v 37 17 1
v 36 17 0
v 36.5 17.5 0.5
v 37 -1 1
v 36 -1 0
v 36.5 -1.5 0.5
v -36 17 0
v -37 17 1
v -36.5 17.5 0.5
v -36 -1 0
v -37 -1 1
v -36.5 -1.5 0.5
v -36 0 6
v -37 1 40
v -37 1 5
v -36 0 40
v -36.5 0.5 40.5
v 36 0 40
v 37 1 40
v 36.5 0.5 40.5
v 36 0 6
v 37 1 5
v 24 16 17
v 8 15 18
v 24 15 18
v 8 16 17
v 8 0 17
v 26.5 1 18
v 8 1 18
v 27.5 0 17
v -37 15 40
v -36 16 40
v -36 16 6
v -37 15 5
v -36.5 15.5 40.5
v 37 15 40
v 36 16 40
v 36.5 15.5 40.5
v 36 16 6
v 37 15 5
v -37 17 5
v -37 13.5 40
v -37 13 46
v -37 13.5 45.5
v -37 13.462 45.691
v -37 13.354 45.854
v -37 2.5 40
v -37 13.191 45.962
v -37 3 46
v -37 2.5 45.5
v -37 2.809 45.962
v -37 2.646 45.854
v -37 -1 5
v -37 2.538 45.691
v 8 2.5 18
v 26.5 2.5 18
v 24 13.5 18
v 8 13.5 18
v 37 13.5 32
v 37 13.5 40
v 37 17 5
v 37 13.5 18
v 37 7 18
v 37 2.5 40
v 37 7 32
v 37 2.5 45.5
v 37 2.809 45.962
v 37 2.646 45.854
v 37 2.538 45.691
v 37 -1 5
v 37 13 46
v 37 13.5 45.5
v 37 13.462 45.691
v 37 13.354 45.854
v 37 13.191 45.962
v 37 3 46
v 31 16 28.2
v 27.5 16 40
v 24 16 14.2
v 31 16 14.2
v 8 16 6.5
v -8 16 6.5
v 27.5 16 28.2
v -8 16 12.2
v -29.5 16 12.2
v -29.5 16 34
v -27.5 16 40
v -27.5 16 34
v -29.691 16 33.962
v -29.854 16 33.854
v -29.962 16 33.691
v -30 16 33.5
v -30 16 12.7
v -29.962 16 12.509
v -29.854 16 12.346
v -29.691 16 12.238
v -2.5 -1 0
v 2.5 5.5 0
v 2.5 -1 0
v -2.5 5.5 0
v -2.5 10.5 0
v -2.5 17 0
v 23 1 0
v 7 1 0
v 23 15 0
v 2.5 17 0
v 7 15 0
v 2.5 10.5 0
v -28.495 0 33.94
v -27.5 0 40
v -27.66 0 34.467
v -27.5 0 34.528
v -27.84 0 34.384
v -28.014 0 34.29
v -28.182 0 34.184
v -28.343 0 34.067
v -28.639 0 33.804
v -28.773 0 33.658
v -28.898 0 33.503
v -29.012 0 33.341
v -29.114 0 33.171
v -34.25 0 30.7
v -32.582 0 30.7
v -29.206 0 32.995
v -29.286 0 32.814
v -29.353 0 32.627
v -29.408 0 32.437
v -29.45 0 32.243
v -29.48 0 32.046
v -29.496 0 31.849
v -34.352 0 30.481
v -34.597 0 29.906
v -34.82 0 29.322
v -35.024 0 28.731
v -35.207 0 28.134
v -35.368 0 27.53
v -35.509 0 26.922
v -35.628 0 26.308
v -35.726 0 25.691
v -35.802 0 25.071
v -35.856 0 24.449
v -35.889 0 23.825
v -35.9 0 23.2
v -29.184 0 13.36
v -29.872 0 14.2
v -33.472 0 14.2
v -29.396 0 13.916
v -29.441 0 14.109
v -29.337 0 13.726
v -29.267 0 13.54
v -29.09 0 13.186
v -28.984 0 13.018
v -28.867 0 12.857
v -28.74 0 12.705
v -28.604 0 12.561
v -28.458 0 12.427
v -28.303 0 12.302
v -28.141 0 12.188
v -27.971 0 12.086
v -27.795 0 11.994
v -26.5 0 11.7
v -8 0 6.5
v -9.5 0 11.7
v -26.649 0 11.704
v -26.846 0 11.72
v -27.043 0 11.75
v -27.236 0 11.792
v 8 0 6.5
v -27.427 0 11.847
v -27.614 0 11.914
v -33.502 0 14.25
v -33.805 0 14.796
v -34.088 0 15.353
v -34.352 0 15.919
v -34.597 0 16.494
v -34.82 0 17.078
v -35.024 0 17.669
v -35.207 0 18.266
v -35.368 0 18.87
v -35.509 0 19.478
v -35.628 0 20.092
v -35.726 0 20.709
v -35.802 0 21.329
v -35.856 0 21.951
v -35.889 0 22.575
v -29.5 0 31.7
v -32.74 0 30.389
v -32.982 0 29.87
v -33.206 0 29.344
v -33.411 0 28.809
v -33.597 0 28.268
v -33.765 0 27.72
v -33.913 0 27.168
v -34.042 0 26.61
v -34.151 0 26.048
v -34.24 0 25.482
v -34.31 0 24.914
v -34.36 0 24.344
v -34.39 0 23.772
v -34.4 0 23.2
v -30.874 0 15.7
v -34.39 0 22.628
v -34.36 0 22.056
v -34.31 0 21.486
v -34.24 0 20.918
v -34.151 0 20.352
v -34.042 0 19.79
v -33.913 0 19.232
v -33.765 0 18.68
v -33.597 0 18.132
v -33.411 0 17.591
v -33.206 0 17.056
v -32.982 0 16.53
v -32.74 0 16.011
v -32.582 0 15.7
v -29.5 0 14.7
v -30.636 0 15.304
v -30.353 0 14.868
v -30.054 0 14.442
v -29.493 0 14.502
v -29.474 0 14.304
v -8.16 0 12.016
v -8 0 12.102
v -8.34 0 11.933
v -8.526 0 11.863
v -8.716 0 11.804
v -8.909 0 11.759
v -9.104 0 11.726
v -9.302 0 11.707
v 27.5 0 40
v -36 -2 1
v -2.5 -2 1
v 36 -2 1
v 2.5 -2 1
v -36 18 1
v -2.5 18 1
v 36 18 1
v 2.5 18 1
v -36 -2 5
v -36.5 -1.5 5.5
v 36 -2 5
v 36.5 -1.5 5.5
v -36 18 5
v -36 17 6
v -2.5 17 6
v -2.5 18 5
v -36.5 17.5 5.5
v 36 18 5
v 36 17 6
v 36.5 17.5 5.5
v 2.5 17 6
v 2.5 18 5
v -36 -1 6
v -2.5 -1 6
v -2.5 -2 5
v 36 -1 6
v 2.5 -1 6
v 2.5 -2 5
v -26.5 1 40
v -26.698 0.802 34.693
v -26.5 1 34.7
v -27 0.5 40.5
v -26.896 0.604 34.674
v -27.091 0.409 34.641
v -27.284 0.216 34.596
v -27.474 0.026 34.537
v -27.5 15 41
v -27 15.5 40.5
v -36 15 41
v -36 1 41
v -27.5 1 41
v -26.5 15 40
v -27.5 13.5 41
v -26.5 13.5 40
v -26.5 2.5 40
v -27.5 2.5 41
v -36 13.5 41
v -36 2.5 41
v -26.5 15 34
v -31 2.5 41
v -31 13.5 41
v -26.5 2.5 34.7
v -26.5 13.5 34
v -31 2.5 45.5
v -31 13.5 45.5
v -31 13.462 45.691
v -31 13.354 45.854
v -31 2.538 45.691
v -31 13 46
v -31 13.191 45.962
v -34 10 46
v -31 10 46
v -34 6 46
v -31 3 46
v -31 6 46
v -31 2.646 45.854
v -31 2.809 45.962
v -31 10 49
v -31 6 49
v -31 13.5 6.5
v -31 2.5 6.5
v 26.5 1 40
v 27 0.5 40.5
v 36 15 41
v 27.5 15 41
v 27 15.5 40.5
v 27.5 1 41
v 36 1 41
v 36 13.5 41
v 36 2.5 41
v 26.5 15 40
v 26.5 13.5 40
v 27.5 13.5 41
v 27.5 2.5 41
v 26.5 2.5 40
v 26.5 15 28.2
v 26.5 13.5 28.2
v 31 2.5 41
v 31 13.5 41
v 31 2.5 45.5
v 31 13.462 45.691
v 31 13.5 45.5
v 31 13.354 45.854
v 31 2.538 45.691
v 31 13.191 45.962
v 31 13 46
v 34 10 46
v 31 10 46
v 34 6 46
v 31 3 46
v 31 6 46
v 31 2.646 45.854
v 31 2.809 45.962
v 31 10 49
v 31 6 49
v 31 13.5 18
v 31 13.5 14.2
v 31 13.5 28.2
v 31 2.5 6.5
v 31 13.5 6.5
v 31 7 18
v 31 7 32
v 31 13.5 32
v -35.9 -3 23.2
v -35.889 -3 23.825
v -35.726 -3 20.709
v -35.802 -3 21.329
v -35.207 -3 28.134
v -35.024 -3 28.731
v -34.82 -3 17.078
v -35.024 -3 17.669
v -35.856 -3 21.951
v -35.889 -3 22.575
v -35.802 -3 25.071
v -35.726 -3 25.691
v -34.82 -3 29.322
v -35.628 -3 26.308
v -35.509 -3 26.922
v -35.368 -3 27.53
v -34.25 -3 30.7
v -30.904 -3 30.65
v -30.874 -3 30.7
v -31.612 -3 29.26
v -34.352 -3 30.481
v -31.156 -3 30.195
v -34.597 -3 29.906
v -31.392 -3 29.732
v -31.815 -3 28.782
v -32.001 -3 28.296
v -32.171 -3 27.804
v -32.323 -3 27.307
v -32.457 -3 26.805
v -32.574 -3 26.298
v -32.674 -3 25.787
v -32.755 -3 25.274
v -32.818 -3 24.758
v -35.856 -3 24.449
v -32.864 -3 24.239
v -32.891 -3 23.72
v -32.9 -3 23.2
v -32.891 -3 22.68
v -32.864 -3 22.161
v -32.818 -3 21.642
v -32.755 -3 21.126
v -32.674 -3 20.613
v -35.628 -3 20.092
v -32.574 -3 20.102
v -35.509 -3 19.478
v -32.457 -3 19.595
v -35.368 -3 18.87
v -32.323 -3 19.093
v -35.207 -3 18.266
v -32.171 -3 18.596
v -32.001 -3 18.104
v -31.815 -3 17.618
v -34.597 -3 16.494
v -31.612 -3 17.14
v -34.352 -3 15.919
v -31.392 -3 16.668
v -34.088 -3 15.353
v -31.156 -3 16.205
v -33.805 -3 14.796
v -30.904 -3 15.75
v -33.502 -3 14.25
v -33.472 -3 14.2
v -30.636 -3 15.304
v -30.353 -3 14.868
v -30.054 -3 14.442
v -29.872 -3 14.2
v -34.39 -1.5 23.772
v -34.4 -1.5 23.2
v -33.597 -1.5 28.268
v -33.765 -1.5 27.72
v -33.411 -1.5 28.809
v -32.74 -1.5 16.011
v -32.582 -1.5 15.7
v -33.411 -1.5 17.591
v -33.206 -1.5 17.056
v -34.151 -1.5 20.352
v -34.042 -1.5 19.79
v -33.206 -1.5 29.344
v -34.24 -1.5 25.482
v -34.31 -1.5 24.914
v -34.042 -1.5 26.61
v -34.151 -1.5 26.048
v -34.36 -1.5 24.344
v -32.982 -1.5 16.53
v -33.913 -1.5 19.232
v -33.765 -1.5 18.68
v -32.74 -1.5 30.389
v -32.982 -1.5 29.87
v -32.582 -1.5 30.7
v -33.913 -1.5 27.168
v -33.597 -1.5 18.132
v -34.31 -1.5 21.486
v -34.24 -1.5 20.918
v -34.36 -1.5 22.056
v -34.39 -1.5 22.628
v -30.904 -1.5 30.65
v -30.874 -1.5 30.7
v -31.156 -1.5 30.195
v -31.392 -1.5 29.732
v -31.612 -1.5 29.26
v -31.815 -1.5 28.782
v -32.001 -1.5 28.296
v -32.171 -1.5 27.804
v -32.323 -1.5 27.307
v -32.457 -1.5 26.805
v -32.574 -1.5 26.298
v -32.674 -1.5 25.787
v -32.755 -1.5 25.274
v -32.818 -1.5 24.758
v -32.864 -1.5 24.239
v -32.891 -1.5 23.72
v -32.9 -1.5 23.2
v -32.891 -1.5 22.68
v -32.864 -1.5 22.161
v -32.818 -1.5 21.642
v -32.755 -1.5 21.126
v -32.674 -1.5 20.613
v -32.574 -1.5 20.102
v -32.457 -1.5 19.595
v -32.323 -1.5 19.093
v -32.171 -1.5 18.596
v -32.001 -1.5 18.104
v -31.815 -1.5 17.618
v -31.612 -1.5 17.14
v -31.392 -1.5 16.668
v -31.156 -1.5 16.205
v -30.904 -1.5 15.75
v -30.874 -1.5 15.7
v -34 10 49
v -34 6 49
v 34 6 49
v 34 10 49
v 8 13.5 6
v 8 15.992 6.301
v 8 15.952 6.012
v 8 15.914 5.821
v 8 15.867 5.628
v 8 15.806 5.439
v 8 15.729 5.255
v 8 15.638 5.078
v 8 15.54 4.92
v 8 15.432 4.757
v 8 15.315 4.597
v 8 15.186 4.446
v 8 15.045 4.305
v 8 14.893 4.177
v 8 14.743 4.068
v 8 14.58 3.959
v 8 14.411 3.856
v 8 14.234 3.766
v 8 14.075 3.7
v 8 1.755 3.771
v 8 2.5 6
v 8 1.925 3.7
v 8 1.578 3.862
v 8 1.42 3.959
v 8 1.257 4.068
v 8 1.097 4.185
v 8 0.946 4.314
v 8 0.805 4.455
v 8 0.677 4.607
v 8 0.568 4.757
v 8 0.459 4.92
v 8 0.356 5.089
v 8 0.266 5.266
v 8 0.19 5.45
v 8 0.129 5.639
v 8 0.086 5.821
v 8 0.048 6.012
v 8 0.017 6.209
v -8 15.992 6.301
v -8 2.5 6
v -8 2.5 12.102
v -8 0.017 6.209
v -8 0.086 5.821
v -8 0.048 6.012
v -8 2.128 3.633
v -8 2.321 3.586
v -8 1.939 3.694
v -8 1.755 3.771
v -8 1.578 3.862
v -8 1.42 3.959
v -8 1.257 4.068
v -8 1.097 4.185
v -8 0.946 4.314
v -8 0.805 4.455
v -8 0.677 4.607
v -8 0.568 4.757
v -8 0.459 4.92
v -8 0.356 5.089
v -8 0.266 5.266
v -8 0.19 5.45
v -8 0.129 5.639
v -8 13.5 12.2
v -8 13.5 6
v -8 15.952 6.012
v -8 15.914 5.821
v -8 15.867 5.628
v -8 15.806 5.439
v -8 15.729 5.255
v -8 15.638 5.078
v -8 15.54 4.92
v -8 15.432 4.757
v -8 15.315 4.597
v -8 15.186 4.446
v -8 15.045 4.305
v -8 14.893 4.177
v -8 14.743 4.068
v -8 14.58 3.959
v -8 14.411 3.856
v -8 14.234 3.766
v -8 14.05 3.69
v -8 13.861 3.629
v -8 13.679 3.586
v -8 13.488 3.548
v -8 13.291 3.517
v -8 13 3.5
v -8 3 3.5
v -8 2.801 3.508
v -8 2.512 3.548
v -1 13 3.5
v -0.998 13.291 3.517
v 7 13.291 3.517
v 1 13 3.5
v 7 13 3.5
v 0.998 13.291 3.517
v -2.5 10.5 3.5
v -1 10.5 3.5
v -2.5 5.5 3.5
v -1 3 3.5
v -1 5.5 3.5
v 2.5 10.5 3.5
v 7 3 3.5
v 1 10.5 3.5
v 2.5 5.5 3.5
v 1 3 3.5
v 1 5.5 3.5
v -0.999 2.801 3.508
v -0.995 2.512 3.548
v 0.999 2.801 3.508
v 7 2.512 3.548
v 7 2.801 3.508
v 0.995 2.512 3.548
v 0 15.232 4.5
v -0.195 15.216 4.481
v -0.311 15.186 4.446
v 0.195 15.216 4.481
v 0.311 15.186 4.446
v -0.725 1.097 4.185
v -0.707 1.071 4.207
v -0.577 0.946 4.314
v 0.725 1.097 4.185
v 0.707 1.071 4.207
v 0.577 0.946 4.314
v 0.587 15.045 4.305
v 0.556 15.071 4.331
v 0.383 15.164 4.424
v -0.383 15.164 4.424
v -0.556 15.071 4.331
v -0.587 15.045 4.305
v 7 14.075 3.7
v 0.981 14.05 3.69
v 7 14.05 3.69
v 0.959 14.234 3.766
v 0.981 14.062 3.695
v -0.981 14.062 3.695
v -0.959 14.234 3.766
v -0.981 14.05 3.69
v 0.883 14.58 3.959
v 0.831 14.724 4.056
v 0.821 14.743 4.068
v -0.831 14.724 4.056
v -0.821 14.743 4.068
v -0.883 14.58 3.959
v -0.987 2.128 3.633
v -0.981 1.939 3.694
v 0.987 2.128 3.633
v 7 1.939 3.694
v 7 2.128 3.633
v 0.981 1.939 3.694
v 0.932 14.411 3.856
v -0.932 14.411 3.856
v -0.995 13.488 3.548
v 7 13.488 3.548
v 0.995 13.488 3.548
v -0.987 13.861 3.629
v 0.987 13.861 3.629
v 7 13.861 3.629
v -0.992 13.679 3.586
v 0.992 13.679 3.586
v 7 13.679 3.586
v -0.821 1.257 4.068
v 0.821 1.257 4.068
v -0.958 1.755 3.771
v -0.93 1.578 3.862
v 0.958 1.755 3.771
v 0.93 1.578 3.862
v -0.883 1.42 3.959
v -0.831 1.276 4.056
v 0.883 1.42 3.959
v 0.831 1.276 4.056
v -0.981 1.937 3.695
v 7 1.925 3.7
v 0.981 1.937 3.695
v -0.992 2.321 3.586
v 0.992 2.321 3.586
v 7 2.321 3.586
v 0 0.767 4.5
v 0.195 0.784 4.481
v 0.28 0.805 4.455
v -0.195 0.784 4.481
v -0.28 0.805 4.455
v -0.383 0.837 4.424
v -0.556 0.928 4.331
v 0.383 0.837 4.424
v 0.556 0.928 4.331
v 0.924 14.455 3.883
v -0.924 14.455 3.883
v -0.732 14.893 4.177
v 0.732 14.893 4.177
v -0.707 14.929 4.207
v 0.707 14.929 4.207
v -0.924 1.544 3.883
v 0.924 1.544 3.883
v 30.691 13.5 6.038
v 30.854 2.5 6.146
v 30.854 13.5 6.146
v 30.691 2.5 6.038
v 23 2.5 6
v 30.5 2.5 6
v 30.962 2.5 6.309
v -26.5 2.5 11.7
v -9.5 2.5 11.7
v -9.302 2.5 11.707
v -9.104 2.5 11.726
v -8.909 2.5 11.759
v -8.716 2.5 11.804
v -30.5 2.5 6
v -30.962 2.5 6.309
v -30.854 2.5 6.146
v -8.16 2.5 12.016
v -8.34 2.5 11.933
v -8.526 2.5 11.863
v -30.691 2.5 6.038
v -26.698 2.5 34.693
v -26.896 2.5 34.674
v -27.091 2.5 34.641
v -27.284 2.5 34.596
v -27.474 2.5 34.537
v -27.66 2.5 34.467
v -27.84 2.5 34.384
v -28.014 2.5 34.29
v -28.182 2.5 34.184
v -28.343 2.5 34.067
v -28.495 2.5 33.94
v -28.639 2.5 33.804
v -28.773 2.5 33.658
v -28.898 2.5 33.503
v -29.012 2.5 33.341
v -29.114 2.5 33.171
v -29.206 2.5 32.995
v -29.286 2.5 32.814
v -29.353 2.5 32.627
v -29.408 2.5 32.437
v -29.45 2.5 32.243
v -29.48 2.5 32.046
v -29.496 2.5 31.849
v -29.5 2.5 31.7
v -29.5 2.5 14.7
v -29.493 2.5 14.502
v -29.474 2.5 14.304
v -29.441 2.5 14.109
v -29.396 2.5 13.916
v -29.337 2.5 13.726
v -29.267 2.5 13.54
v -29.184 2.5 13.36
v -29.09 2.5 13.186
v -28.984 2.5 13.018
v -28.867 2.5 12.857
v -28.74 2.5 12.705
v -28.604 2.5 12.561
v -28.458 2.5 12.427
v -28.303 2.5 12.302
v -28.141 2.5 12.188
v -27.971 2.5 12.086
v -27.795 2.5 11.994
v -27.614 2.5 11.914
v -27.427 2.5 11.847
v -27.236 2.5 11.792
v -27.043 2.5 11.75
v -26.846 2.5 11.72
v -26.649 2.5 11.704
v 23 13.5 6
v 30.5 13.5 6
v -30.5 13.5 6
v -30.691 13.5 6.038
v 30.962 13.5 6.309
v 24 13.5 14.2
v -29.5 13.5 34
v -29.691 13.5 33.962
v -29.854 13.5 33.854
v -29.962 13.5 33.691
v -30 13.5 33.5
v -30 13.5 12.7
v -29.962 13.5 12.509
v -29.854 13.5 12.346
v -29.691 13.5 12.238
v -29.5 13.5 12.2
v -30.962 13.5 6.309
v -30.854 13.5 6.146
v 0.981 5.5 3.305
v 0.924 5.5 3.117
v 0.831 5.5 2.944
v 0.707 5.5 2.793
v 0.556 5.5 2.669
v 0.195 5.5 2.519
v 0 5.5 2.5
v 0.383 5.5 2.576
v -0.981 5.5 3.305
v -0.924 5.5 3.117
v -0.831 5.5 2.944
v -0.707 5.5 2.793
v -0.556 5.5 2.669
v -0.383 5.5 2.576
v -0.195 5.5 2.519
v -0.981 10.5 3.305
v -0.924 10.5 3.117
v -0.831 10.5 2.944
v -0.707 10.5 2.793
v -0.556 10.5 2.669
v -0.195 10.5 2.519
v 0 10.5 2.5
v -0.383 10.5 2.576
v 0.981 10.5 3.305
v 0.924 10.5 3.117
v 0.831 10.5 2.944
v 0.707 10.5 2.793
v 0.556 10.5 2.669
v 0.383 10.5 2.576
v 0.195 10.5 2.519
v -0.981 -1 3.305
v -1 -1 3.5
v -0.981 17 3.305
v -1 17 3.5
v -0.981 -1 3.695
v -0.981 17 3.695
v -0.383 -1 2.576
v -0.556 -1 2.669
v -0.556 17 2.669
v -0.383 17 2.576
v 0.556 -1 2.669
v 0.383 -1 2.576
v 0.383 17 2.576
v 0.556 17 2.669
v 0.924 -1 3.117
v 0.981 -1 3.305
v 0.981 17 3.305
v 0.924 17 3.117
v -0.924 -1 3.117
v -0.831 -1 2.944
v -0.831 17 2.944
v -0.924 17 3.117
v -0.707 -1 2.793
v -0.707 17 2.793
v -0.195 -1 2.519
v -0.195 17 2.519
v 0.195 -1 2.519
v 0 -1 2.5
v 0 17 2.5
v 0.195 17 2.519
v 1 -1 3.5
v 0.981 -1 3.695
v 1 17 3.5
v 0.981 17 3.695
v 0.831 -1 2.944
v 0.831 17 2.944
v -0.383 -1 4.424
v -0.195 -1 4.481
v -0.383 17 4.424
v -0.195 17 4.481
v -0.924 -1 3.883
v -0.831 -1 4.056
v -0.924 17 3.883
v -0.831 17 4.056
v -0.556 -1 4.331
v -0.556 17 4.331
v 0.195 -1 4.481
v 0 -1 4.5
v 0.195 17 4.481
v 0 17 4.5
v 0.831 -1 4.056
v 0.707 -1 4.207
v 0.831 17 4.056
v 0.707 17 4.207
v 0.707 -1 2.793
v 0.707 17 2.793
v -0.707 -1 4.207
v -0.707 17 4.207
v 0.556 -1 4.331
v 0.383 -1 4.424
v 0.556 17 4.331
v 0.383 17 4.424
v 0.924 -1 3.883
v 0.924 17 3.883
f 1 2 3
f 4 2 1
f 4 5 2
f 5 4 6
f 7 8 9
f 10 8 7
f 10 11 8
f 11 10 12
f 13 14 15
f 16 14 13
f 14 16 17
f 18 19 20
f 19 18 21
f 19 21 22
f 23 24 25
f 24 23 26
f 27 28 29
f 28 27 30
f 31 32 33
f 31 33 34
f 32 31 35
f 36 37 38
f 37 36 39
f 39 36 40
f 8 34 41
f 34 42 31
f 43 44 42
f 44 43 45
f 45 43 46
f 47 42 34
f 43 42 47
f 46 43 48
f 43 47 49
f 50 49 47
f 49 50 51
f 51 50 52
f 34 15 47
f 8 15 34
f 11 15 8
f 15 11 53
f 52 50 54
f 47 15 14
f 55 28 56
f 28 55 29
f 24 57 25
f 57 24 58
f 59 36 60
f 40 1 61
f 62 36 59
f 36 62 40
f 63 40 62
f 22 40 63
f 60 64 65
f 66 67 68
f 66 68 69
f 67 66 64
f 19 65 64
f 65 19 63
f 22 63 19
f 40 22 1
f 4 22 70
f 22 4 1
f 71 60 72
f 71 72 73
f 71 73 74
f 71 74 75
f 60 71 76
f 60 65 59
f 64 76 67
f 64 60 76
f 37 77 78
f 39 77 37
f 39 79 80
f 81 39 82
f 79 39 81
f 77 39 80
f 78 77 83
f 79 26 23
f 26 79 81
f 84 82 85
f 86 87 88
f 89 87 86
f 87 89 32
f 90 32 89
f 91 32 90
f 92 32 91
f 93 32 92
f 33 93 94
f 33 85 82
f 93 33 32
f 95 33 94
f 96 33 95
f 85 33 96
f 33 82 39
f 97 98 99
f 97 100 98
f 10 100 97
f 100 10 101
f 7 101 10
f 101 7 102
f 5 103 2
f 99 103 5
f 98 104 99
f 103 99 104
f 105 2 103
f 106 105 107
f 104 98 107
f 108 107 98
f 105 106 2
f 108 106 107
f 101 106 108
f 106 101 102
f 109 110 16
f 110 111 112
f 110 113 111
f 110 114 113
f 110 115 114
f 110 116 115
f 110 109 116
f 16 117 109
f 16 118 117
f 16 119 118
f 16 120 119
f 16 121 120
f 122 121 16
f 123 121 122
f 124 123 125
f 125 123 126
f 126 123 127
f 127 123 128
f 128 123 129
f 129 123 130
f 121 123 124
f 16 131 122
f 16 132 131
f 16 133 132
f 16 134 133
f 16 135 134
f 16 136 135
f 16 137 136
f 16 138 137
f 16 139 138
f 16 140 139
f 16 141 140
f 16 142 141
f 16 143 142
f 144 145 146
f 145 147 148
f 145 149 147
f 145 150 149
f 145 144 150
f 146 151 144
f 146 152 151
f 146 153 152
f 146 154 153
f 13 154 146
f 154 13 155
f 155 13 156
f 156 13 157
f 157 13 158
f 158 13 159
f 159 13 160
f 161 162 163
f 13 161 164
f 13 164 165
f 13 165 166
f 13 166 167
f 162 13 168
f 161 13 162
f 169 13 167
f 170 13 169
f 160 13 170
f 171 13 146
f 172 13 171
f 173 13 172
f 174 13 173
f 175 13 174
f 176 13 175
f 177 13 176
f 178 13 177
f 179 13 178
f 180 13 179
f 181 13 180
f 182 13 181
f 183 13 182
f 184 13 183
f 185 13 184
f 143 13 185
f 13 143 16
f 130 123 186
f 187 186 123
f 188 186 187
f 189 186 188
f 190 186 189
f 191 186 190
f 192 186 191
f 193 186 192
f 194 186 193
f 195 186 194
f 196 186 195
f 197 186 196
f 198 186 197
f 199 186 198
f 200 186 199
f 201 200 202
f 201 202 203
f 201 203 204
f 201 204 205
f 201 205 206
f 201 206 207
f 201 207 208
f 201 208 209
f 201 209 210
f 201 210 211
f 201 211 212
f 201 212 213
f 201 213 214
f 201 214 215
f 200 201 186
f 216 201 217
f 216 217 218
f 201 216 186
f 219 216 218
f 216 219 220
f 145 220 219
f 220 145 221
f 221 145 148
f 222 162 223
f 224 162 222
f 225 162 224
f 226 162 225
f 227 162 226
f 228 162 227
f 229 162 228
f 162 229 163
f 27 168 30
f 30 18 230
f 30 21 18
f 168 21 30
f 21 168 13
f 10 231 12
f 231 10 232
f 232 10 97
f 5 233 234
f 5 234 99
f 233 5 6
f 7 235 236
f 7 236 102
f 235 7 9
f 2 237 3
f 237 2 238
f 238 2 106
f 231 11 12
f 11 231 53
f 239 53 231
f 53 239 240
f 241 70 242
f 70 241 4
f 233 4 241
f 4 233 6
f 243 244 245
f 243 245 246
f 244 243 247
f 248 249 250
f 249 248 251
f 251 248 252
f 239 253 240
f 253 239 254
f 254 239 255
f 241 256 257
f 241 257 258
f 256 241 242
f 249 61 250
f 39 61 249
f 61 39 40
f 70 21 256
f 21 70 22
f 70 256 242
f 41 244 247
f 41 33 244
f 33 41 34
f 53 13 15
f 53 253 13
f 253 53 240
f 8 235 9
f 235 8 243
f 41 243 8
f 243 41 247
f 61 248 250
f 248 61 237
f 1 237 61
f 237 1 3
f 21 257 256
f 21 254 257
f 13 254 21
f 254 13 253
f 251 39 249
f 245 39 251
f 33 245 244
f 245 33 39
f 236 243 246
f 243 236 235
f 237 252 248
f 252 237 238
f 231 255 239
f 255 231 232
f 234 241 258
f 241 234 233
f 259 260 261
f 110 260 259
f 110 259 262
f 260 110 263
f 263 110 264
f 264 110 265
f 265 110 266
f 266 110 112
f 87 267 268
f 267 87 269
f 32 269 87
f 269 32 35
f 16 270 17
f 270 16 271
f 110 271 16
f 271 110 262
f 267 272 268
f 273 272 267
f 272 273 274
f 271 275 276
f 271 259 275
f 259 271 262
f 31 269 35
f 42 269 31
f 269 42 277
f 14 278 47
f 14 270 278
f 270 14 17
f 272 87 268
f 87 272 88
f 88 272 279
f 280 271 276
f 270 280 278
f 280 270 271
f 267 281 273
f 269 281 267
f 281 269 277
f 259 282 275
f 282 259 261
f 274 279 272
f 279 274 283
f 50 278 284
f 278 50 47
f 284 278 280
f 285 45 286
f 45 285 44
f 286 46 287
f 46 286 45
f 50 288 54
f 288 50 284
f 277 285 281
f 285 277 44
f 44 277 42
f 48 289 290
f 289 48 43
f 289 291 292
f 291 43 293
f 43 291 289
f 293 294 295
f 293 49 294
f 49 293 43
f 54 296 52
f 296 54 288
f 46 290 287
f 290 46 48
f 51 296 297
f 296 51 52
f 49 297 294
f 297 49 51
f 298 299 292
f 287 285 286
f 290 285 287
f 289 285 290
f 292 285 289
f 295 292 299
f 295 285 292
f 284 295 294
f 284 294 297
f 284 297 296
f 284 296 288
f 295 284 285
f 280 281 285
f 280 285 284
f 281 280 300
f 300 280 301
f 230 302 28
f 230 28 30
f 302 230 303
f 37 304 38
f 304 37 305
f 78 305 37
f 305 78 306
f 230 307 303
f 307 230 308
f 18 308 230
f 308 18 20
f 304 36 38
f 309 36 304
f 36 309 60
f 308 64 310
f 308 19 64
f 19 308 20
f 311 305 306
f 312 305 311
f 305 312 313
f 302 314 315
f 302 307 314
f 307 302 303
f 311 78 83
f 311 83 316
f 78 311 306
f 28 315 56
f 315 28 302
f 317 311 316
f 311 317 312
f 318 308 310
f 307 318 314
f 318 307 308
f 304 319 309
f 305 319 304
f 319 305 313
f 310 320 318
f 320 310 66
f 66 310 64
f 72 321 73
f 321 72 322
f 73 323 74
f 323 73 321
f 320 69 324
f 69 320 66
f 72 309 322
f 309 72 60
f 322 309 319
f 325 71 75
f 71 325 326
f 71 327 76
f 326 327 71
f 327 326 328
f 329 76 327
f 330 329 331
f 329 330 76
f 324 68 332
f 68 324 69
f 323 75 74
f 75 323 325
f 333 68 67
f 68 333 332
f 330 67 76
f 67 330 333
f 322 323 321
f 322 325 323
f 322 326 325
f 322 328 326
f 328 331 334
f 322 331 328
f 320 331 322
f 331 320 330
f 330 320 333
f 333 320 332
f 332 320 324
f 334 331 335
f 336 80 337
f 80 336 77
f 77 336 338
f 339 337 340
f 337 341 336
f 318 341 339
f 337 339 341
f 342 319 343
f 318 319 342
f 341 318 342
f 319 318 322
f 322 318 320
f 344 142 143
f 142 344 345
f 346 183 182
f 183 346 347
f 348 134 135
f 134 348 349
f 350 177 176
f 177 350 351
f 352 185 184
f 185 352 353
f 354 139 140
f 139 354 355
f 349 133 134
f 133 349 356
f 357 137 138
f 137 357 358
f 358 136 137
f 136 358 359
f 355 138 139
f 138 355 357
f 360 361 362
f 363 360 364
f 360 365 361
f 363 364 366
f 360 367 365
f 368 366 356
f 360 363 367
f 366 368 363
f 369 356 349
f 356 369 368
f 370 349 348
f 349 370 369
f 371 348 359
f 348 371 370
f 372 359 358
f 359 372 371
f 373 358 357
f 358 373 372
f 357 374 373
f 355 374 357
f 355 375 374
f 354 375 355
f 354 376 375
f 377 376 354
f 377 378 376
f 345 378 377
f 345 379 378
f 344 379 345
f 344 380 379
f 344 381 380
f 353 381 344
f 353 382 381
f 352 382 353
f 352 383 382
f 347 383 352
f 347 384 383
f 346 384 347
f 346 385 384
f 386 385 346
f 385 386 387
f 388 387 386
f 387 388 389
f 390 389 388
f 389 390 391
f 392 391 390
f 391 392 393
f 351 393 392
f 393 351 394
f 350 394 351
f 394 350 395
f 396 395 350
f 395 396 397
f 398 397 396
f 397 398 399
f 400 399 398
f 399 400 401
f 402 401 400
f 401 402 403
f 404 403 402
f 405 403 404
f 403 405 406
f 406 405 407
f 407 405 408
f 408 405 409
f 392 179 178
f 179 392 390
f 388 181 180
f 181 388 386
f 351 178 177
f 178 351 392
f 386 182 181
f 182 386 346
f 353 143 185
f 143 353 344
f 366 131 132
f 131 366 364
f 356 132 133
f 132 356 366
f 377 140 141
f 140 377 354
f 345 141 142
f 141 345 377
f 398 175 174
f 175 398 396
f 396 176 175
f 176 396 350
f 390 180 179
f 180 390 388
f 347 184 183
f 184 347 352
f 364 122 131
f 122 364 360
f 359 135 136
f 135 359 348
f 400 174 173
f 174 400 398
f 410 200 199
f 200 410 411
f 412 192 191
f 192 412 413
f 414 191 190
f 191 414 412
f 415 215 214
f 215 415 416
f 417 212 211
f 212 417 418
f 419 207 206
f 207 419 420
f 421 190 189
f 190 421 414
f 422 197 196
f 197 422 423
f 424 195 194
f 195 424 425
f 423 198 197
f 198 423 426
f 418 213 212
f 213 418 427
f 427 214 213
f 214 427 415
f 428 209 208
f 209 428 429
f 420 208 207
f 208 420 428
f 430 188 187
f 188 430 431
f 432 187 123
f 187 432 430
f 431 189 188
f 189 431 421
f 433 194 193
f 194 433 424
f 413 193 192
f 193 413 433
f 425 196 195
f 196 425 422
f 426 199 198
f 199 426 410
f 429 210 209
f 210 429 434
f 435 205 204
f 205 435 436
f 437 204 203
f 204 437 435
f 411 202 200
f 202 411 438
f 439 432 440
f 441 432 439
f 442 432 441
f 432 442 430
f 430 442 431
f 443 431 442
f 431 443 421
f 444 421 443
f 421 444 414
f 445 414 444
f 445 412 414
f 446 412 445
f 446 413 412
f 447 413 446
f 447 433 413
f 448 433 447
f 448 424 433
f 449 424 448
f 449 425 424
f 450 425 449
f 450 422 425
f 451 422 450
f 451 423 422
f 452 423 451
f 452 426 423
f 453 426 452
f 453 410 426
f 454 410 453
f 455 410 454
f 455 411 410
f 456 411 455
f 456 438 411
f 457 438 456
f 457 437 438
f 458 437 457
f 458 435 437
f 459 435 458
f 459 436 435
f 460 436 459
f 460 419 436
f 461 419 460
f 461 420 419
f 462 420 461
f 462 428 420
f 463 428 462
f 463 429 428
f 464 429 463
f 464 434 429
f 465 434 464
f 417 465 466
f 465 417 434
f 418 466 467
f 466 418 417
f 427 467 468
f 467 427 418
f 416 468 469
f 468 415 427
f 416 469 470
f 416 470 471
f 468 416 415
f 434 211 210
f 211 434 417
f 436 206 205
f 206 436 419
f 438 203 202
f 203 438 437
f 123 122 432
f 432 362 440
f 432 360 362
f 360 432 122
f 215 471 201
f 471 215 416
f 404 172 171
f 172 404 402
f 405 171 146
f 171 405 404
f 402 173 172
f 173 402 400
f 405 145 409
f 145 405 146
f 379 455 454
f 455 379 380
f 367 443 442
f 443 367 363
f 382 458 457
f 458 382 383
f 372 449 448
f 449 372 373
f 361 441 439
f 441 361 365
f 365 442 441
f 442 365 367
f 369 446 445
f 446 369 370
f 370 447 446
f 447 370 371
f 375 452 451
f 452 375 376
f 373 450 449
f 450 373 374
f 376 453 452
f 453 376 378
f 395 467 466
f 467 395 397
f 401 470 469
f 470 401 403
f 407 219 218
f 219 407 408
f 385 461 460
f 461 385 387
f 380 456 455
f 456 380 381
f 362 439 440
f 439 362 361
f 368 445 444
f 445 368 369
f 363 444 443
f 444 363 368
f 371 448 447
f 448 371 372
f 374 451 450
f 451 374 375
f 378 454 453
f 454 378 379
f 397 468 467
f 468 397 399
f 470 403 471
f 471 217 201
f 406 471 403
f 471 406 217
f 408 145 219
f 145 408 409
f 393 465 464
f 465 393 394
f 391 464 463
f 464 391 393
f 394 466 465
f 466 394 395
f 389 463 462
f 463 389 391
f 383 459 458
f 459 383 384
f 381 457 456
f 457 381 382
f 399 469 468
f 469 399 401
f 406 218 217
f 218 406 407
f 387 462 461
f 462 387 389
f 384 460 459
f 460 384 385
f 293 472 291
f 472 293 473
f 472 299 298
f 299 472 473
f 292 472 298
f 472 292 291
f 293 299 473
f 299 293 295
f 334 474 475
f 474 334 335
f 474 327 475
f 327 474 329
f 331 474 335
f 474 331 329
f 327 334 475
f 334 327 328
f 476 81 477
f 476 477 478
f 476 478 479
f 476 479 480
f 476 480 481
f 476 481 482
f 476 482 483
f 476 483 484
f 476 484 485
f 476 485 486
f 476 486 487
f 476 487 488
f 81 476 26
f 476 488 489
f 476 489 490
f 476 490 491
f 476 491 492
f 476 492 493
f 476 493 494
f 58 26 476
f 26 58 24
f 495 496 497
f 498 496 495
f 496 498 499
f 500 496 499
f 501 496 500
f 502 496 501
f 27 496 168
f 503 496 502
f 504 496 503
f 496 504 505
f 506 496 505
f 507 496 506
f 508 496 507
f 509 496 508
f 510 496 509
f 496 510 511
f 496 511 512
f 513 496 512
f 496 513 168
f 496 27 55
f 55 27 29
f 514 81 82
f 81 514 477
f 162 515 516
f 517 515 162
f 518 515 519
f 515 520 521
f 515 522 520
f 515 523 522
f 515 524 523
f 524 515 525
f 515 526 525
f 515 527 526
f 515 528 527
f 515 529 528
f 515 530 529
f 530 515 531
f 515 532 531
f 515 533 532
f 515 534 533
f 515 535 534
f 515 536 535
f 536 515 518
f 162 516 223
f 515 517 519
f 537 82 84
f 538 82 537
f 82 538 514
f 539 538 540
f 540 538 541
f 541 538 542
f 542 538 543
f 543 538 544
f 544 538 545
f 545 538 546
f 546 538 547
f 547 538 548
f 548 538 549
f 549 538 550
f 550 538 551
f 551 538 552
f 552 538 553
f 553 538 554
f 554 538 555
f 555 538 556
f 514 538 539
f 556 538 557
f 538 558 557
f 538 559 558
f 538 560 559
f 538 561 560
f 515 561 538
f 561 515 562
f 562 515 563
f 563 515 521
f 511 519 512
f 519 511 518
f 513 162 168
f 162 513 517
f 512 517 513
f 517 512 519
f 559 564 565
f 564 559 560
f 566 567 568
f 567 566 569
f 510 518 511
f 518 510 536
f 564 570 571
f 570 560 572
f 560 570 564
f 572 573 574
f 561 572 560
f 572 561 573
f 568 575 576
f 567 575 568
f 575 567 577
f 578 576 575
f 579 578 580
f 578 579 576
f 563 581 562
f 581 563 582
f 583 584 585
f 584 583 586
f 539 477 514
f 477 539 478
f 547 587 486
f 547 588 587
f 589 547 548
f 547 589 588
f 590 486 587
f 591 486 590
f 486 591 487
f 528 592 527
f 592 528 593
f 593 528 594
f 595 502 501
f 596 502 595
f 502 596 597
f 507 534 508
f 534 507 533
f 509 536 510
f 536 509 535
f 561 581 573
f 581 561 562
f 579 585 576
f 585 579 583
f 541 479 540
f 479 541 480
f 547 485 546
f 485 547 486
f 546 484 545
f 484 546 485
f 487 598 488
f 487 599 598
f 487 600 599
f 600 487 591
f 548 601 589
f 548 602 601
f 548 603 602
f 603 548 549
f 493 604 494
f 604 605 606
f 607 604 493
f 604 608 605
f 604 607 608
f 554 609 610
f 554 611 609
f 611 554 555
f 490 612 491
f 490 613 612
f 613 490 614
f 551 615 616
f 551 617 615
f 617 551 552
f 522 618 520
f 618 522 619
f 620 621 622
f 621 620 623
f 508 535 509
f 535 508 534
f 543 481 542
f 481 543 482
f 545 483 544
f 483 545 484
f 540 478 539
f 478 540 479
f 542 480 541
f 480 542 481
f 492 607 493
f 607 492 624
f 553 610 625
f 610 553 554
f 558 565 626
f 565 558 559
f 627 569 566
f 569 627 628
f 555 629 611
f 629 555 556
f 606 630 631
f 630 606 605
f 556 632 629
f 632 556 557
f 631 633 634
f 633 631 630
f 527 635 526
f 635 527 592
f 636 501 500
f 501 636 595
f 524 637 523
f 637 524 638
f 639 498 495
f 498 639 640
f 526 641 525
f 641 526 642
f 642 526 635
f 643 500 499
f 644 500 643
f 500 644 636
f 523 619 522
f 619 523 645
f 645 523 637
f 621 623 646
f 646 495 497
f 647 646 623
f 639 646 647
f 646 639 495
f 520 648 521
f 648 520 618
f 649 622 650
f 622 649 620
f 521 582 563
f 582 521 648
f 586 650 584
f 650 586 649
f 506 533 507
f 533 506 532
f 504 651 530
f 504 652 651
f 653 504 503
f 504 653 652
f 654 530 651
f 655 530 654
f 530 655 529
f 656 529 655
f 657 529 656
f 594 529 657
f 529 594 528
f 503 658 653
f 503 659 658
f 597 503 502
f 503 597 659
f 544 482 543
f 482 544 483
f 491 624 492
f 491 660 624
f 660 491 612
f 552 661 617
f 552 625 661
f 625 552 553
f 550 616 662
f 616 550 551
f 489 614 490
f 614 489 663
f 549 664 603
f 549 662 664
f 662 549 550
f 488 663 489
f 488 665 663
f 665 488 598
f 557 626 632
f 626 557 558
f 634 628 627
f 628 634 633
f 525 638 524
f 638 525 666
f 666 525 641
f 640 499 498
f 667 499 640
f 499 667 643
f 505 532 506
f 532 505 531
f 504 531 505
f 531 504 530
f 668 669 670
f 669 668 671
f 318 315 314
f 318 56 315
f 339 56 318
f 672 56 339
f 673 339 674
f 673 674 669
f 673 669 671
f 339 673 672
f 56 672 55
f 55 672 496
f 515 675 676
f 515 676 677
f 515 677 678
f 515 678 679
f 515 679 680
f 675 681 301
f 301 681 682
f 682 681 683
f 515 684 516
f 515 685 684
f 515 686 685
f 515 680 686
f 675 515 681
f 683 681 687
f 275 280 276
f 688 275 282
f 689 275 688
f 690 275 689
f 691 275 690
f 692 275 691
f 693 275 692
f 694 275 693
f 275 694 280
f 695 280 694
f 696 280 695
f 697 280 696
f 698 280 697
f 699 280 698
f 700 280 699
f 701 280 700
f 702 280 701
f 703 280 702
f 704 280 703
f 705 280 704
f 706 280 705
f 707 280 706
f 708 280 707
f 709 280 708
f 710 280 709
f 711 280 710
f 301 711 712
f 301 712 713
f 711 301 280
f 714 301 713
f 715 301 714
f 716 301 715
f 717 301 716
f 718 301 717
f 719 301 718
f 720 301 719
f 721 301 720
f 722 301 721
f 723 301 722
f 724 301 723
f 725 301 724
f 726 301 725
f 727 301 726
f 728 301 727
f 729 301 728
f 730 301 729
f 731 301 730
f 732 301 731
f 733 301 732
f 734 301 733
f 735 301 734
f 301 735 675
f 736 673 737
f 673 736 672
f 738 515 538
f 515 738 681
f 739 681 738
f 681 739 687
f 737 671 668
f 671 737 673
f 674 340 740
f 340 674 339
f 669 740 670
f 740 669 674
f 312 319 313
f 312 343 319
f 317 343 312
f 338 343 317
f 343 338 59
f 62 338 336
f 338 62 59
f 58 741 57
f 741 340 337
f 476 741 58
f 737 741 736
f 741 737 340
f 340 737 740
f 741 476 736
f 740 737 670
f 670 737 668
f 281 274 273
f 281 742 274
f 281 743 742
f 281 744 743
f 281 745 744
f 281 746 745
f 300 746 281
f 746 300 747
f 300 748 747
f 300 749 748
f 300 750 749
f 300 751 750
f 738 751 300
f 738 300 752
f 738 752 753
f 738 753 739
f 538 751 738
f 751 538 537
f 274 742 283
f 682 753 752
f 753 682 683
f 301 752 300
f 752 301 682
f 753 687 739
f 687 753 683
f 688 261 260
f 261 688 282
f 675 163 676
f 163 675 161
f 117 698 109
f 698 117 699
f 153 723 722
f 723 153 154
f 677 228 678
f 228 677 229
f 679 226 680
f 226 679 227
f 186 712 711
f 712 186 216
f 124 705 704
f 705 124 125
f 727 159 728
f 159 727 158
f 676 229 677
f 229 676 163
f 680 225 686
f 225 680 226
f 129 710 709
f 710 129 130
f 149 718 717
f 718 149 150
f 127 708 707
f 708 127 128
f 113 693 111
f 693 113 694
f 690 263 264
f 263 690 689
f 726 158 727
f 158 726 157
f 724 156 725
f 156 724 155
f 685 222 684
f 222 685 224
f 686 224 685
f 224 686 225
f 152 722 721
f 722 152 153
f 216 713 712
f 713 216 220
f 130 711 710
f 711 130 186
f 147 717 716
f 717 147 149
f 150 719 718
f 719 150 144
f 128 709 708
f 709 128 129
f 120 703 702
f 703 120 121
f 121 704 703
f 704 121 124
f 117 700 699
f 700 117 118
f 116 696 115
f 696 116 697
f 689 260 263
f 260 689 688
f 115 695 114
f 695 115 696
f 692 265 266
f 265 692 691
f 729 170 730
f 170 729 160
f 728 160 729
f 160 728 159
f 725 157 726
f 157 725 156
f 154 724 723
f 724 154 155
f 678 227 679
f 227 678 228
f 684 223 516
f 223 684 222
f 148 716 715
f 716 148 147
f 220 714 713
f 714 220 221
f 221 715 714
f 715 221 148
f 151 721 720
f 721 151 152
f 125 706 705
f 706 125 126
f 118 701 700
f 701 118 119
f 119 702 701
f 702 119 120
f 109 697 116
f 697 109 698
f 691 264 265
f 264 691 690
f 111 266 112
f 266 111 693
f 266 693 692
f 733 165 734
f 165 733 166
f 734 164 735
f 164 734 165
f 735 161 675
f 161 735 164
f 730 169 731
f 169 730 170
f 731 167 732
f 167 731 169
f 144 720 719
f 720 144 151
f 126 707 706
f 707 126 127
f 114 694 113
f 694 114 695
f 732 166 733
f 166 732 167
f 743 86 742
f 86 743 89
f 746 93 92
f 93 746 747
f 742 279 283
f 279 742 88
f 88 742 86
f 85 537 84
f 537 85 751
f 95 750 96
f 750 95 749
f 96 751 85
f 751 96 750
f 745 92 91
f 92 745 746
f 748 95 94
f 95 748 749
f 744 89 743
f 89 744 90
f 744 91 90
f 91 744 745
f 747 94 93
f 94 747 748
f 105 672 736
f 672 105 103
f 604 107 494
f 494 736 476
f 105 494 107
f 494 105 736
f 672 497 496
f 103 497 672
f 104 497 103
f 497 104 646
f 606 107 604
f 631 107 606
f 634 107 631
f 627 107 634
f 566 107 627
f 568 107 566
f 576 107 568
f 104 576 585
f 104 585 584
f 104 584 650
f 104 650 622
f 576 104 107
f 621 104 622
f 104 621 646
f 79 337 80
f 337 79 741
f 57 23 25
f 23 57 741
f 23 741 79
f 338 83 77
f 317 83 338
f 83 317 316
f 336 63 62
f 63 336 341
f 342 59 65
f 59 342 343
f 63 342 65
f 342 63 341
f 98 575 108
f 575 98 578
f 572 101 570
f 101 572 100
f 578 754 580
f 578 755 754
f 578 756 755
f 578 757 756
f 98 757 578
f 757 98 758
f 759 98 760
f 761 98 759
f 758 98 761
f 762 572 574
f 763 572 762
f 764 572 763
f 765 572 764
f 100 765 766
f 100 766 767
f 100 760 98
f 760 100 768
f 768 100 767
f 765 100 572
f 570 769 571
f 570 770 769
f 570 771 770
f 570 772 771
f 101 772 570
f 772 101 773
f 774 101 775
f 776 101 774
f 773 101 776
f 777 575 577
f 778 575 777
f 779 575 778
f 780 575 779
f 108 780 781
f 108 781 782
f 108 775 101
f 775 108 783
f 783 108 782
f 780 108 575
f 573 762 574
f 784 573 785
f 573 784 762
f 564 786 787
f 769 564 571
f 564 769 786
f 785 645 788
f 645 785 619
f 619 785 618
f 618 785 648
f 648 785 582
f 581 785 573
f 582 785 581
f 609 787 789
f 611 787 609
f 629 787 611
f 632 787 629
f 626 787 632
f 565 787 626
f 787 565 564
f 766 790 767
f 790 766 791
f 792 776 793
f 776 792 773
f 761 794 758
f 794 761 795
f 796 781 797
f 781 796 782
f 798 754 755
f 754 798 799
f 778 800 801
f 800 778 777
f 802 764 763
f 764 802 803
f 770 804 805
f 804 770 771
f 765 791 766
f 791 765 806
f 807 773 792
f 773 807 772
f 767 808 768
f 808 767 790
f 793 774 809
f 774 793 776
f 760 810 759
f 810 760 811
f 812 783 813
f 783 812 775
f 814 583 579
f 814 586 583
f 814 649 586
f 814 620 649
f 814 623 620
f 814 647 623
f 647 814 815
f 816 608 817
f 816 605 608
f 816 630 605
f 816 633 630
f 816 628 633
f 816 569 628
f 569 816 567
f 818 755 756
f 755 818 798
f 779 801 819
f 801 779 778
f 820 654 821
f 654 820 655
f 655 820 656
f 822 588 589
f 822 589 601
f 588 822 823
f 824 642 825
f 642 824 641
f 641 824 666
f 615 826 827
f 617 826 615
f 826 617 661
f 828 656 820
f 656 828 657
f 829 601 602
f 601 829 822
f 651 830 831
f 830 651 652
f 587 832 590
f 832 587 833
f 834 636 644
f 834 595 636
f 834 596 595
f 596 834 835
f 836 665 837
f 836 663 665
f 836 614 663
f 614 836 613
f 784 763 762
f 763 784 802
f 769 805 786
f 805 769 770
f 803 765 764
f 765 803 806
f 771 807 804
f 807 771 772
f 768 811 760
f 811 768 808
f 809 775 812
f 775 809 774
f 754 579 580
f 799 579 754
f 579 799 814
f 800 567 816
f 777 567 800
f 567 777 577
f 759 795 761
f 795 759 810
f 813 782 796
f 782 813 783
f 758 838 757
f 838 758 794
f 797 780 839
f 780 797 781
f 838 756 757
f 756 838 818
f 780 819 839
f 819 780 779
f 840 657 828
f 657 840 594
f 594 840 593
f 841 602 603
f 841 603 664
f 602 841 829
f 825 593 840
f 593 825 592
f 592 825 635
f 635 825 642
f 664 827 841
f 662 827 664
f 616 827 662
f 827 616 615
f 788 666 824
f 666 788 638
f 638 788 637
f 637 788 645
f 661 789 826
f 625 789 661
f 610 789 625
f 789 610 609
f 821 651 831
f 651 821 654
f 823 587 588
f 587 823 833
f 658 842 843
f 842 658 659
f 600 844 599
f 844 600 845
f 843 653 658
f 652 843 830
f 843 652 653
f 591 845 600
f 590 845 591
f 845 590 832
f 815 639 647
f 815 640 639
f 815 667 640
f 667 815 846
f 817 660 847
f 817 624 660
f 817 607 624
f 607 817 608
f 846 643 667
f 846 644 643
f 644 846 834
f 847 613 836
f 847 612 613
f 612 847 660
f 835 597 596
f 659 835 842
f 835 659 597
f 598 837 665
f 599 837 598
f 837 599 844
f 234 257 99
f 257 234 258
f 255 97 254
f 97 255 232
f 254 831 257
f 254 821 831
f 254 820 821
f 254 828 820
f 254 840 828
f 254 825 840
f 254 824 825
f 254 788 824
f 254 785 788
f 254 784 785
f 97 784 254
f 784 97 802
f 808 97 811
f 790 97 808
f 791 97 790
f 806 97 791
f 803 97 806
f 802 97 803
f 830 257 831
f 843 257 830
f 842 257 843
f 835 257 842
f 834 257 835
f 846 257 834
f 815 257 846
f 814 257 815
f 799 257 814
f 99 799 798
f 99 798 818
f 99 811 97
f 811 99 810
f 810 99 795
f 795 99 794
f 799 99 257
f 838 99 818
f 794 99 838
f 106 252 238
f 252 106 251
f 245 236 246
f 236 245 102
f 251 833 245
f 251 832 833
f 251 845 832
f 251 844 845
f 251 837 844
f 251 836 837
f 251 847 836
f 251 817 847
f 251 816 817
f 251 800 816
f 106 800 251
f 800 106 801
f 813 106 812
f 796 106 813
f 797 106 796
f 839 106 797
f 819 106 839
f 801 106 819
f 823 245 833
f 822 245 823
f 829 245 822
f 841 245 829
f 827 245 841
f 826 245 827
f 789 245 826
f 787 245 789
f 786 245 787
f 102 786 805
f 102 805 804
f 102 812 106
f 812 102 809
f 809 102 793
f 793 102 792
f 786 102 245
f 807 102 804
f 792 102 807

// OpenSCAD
// SMO 4K TPU top protector

$fs = $preview ? 0.5 : 0.2;
$fa = $preview ? 10 : 2;

// protector
tw = 6; // top protector width
ty = 4.5; // top protector y offset from base structure
tc = 5.0; // top cutout widht 

sw = 6; // side width
ph = 12; // protected height
pch = 1; // chamfer for protector

// camera and its mount dimensions
ch = 40.0;
cw = 11.0;
cx = 62;  // horizontal camera size
cr = 0.5; // corner radius
mt = 2.5; // mount thickness
mw = 16;  // mount width

// bottom support
bh = 5;  // bottom height
bcx = 3; // bottom connector x-dim
bcy = 4; // bottom connector y-dim
bc_extra = 0.5; // extra height of bottom connector 

// lens front
lfw = 23;
lfh = 23;
lfr = 3; // radius
lfx = 1.5;
lfz = 11.3;

lock_d1 = 29.8; // d1 from the lens cap
lock_h = 1.5; // height of lock pin
lock_w = 1.5; // lock widht
lock_vsize = 15; // lock vertical size
lock_vstop = 1.5; // lock vertical stopper

// lens back
lbw = 26.8;
lbh = 21.8;
lbr = 0.5; // radius
lbx = 1.0;
lbz = 12;
lbd = 10; // depth back

// buttons cut
but_x = 8;
but_y_extra = 1.5; // extra on both side
but_w = 16;

// led cut
led_z = 8.2; // from top
led_h = 14;
led_w = 7;

// sd card
sd_z = 14; // from bottom
sd_h = 14;
sd_w = 6.5;

// top connector
tcw = 5;
tsd = 2; // screw diameter

eps = 0.5;

//camera();

difference() {
    side_x = sw + lfx + lfr;
    side_y = cw + 2 * mt;
    side_z = tw + (ch - bh);
    union() {
        translate([-cx / 2 - sw, 0, 0])
            chamfer_cube([cx + 2 * sw, cw + 2 * mt, ph + tw], pch);
        translate([-cx / 2 - sw, -ty + mt, 0])
            chamfer_cube([cx + 2 * sw, cw + 2 * ty, tw], pch);
        // left cover (around lens)
        translate([-cx / 2 - sw, 0, 0])
            chamfer_cube([side_x, side_y, side_z], pch);
        translate([-cx / 2 - bcx, side_y / 2 - bcy / 2, tw + ch - eps])
            cube([bcx, bcy, mt + eps + bc_extra]);
        intersection() {
            mount_cut();
            translate([-cx / 2 - sw, 0, 0])
                cube([sw, side_y, tw + ch], pch);
        }
        // right cover
        translate([cx / 2 + sw - side_x, 0, 0])
            chamfer_cube([side_x, side_y, side_z], pch);
        translate([cx / 2, side_y / 2 - bcy / 2, tw + ch - eps])
            cube([bcx, bcy, mt + eps + bc_extra]);
        intersection() {
            mount_cut();
            translate([cx / 2, 0, 0])
                cube([sw, side_y, tw + ch], pch);
        }
        // cap lock mechanism
        camera_placement() {
            translate([cx / 2 - lfw / 2 - lfx, -mt, lfz + lfh / 2])
                rotate([90, 180, 0])
                    cap_lock();
        }
    }
    camera_placement() {
        camera();
    }
}

module camera_placement() {
    translate([0, mt, tw + ch]) 
        rotate([180, 0, 180])
            children();
}

module camera() {
    translate([-mw / 2, -mt, -mt])
        rotate([90, 90, 90])
            linear_extrude(mw) {
                mount2d_outer();
            }
    translate([-cx / 2, cw, 0])
        rotate([90, 0, 0])
            linear_extrude(cw)       
                translate([cr, cr])
                    offset(cr) square([cx - 2 * cr, ch - 2 * cr]);
    translate([lfr + (cx / 2 - lfw - lfx), eps, lfr + lfz])
        rotate([90, 0, 0])
            linear_extrude(mt + 2 * eps)
                offset(lfr)
                    square([lfw - 2 * lfr, lfh - 2 * lfr]);
    translate([lbr + (cx / 2 - lbw - lbx), cw + lbd, lbr + lbz])
        rotate([90, 0, 0])
            linear_extrude(lbd + eps)
                offset(lbr)
                    square([lbw - 2 * lbr, lbh - 2 * lbr]);
    // buttons                
    translate([-cx / 2 + but_x, cw / 2, ch])
        linear_extrude(tw, scale=[1, 1 + 2 * but_y_extra / cw]) {
            translate([0, -cw / 2])
                square([but_w, cw]);
        }
    // led & wires connector       
    translate([-cx / 2, cw, ch - led_h - led_z])
        cube([led_w, mt + eps, led_h]);
    // sd card
    translate([-cx / 2 - sw, cw - sd_w, sd_z])
        cube([sw + eps, sd_w, sd_h]);
        
    // top connector    
    translate([-tcw / 2, -tcw / 2 + cw / 2, ch])
        cube([tcw, tcw, tw + eps]);
    translate([0, cw + ty + eps, ch + mt])
        rotate([90, 0, 0])
            cylinder(d = tsd, h = cw + 2 * ty + 2 * eps);
    translate([-tc / 2, -ty - eps, ch])
        cube([tc, pch + eps, tw]);
    translate([-tc / 2, cw + ty - pch, ch])
        cube([tc, pch + eps, tw]);
}

module mount_cut() {
    translate([-cx / 2 - sw - eps, 0, tw - mt])
        rotate([90, 90, 90])
            linear_extrude(cx + 2 * sw + 2 * eps) {
                mount2d_inner();
            }
            
}

module mount2d_outer() {
    offset(mt) mount2d_inner();
}

module mount2d_inner() {
    translate([cr - ch - mt, cr + mt])
        offset(cr) square([ch - 2*cr, cw - 2*cr]);
}

module cap_lock() {
    difference() {
        union() {
            intersection() {
                difference() {
                    cylinder(d = lock_d1 + 4 * lock_w, h = lock_h + lock_w);
                    translate([0, 0, -eps])
                        cylinder(d = lock_d1 + 2 * lock_w, h = lock_h + eps);
                }
                translate([-lock_d1 - 4 * lock_w, -lock_vsize / 2, 0])
                    cube([lock_d1 + 4 * lock_w, lock_vsize, lock_h + lock_w]);
            }
            intersection() {
                cylinder(d = lock_d1 + 4 * lock_w, h = lock_h + lock_w);
                translate([-lock_d1 - 4 * lock_w, -lock_vsize / 2 - lock_vstop, 0])
                    cube([lock_d1 + 4 * lock_w, lock_vstop, lock_h + lock_w]);
            }
        }
        translate([0, 0, -eps])
            cylinder(d = lock_d1, h = lock_h + lock_w + 2 * eps);
    }
}


module chamfer(d, ch) {
    translate([-eps, 0, 0])
        rotate([90, 0, 0]) rotate([0, 90, 0])
            linear_extrude(d + 2 * eps)
                polygon([[-eps, -eps], [ch + eps, -eps], [-eps, ch + eps]]);
}

module chamfer_cube(s, ch) {
    difference() {
        cube(s);
        chamfer_cube_bottom(s, ch);
        translate([0, s.y, s.z])
            rotate([180, 0, 0]) chamfer_cube_bottom(s, ch);
    }
}

module chamfer_cube_bottom(s, ch) {
    chamfer(s.x, ch);
    translate([s.x, s.y, 0])
        rotate([0, 0, 180]) chamfer(s.x, ch);
    translate([s.x, 0, 0])
        rotate([0, 0, 90]) chamfer(s.y, ch);
    translate([0, s.y, 0])
        rotate([0, 0, -90]) chamfer(s.y, ch);
    translate([0, 0, s.z])
        rotate([0, 90, 0]) chamfer(s.z, ch);
    translate([s.x, 0, 0])
        rotate([0, -90, 0]) chamfer(s.z, ch);
}
